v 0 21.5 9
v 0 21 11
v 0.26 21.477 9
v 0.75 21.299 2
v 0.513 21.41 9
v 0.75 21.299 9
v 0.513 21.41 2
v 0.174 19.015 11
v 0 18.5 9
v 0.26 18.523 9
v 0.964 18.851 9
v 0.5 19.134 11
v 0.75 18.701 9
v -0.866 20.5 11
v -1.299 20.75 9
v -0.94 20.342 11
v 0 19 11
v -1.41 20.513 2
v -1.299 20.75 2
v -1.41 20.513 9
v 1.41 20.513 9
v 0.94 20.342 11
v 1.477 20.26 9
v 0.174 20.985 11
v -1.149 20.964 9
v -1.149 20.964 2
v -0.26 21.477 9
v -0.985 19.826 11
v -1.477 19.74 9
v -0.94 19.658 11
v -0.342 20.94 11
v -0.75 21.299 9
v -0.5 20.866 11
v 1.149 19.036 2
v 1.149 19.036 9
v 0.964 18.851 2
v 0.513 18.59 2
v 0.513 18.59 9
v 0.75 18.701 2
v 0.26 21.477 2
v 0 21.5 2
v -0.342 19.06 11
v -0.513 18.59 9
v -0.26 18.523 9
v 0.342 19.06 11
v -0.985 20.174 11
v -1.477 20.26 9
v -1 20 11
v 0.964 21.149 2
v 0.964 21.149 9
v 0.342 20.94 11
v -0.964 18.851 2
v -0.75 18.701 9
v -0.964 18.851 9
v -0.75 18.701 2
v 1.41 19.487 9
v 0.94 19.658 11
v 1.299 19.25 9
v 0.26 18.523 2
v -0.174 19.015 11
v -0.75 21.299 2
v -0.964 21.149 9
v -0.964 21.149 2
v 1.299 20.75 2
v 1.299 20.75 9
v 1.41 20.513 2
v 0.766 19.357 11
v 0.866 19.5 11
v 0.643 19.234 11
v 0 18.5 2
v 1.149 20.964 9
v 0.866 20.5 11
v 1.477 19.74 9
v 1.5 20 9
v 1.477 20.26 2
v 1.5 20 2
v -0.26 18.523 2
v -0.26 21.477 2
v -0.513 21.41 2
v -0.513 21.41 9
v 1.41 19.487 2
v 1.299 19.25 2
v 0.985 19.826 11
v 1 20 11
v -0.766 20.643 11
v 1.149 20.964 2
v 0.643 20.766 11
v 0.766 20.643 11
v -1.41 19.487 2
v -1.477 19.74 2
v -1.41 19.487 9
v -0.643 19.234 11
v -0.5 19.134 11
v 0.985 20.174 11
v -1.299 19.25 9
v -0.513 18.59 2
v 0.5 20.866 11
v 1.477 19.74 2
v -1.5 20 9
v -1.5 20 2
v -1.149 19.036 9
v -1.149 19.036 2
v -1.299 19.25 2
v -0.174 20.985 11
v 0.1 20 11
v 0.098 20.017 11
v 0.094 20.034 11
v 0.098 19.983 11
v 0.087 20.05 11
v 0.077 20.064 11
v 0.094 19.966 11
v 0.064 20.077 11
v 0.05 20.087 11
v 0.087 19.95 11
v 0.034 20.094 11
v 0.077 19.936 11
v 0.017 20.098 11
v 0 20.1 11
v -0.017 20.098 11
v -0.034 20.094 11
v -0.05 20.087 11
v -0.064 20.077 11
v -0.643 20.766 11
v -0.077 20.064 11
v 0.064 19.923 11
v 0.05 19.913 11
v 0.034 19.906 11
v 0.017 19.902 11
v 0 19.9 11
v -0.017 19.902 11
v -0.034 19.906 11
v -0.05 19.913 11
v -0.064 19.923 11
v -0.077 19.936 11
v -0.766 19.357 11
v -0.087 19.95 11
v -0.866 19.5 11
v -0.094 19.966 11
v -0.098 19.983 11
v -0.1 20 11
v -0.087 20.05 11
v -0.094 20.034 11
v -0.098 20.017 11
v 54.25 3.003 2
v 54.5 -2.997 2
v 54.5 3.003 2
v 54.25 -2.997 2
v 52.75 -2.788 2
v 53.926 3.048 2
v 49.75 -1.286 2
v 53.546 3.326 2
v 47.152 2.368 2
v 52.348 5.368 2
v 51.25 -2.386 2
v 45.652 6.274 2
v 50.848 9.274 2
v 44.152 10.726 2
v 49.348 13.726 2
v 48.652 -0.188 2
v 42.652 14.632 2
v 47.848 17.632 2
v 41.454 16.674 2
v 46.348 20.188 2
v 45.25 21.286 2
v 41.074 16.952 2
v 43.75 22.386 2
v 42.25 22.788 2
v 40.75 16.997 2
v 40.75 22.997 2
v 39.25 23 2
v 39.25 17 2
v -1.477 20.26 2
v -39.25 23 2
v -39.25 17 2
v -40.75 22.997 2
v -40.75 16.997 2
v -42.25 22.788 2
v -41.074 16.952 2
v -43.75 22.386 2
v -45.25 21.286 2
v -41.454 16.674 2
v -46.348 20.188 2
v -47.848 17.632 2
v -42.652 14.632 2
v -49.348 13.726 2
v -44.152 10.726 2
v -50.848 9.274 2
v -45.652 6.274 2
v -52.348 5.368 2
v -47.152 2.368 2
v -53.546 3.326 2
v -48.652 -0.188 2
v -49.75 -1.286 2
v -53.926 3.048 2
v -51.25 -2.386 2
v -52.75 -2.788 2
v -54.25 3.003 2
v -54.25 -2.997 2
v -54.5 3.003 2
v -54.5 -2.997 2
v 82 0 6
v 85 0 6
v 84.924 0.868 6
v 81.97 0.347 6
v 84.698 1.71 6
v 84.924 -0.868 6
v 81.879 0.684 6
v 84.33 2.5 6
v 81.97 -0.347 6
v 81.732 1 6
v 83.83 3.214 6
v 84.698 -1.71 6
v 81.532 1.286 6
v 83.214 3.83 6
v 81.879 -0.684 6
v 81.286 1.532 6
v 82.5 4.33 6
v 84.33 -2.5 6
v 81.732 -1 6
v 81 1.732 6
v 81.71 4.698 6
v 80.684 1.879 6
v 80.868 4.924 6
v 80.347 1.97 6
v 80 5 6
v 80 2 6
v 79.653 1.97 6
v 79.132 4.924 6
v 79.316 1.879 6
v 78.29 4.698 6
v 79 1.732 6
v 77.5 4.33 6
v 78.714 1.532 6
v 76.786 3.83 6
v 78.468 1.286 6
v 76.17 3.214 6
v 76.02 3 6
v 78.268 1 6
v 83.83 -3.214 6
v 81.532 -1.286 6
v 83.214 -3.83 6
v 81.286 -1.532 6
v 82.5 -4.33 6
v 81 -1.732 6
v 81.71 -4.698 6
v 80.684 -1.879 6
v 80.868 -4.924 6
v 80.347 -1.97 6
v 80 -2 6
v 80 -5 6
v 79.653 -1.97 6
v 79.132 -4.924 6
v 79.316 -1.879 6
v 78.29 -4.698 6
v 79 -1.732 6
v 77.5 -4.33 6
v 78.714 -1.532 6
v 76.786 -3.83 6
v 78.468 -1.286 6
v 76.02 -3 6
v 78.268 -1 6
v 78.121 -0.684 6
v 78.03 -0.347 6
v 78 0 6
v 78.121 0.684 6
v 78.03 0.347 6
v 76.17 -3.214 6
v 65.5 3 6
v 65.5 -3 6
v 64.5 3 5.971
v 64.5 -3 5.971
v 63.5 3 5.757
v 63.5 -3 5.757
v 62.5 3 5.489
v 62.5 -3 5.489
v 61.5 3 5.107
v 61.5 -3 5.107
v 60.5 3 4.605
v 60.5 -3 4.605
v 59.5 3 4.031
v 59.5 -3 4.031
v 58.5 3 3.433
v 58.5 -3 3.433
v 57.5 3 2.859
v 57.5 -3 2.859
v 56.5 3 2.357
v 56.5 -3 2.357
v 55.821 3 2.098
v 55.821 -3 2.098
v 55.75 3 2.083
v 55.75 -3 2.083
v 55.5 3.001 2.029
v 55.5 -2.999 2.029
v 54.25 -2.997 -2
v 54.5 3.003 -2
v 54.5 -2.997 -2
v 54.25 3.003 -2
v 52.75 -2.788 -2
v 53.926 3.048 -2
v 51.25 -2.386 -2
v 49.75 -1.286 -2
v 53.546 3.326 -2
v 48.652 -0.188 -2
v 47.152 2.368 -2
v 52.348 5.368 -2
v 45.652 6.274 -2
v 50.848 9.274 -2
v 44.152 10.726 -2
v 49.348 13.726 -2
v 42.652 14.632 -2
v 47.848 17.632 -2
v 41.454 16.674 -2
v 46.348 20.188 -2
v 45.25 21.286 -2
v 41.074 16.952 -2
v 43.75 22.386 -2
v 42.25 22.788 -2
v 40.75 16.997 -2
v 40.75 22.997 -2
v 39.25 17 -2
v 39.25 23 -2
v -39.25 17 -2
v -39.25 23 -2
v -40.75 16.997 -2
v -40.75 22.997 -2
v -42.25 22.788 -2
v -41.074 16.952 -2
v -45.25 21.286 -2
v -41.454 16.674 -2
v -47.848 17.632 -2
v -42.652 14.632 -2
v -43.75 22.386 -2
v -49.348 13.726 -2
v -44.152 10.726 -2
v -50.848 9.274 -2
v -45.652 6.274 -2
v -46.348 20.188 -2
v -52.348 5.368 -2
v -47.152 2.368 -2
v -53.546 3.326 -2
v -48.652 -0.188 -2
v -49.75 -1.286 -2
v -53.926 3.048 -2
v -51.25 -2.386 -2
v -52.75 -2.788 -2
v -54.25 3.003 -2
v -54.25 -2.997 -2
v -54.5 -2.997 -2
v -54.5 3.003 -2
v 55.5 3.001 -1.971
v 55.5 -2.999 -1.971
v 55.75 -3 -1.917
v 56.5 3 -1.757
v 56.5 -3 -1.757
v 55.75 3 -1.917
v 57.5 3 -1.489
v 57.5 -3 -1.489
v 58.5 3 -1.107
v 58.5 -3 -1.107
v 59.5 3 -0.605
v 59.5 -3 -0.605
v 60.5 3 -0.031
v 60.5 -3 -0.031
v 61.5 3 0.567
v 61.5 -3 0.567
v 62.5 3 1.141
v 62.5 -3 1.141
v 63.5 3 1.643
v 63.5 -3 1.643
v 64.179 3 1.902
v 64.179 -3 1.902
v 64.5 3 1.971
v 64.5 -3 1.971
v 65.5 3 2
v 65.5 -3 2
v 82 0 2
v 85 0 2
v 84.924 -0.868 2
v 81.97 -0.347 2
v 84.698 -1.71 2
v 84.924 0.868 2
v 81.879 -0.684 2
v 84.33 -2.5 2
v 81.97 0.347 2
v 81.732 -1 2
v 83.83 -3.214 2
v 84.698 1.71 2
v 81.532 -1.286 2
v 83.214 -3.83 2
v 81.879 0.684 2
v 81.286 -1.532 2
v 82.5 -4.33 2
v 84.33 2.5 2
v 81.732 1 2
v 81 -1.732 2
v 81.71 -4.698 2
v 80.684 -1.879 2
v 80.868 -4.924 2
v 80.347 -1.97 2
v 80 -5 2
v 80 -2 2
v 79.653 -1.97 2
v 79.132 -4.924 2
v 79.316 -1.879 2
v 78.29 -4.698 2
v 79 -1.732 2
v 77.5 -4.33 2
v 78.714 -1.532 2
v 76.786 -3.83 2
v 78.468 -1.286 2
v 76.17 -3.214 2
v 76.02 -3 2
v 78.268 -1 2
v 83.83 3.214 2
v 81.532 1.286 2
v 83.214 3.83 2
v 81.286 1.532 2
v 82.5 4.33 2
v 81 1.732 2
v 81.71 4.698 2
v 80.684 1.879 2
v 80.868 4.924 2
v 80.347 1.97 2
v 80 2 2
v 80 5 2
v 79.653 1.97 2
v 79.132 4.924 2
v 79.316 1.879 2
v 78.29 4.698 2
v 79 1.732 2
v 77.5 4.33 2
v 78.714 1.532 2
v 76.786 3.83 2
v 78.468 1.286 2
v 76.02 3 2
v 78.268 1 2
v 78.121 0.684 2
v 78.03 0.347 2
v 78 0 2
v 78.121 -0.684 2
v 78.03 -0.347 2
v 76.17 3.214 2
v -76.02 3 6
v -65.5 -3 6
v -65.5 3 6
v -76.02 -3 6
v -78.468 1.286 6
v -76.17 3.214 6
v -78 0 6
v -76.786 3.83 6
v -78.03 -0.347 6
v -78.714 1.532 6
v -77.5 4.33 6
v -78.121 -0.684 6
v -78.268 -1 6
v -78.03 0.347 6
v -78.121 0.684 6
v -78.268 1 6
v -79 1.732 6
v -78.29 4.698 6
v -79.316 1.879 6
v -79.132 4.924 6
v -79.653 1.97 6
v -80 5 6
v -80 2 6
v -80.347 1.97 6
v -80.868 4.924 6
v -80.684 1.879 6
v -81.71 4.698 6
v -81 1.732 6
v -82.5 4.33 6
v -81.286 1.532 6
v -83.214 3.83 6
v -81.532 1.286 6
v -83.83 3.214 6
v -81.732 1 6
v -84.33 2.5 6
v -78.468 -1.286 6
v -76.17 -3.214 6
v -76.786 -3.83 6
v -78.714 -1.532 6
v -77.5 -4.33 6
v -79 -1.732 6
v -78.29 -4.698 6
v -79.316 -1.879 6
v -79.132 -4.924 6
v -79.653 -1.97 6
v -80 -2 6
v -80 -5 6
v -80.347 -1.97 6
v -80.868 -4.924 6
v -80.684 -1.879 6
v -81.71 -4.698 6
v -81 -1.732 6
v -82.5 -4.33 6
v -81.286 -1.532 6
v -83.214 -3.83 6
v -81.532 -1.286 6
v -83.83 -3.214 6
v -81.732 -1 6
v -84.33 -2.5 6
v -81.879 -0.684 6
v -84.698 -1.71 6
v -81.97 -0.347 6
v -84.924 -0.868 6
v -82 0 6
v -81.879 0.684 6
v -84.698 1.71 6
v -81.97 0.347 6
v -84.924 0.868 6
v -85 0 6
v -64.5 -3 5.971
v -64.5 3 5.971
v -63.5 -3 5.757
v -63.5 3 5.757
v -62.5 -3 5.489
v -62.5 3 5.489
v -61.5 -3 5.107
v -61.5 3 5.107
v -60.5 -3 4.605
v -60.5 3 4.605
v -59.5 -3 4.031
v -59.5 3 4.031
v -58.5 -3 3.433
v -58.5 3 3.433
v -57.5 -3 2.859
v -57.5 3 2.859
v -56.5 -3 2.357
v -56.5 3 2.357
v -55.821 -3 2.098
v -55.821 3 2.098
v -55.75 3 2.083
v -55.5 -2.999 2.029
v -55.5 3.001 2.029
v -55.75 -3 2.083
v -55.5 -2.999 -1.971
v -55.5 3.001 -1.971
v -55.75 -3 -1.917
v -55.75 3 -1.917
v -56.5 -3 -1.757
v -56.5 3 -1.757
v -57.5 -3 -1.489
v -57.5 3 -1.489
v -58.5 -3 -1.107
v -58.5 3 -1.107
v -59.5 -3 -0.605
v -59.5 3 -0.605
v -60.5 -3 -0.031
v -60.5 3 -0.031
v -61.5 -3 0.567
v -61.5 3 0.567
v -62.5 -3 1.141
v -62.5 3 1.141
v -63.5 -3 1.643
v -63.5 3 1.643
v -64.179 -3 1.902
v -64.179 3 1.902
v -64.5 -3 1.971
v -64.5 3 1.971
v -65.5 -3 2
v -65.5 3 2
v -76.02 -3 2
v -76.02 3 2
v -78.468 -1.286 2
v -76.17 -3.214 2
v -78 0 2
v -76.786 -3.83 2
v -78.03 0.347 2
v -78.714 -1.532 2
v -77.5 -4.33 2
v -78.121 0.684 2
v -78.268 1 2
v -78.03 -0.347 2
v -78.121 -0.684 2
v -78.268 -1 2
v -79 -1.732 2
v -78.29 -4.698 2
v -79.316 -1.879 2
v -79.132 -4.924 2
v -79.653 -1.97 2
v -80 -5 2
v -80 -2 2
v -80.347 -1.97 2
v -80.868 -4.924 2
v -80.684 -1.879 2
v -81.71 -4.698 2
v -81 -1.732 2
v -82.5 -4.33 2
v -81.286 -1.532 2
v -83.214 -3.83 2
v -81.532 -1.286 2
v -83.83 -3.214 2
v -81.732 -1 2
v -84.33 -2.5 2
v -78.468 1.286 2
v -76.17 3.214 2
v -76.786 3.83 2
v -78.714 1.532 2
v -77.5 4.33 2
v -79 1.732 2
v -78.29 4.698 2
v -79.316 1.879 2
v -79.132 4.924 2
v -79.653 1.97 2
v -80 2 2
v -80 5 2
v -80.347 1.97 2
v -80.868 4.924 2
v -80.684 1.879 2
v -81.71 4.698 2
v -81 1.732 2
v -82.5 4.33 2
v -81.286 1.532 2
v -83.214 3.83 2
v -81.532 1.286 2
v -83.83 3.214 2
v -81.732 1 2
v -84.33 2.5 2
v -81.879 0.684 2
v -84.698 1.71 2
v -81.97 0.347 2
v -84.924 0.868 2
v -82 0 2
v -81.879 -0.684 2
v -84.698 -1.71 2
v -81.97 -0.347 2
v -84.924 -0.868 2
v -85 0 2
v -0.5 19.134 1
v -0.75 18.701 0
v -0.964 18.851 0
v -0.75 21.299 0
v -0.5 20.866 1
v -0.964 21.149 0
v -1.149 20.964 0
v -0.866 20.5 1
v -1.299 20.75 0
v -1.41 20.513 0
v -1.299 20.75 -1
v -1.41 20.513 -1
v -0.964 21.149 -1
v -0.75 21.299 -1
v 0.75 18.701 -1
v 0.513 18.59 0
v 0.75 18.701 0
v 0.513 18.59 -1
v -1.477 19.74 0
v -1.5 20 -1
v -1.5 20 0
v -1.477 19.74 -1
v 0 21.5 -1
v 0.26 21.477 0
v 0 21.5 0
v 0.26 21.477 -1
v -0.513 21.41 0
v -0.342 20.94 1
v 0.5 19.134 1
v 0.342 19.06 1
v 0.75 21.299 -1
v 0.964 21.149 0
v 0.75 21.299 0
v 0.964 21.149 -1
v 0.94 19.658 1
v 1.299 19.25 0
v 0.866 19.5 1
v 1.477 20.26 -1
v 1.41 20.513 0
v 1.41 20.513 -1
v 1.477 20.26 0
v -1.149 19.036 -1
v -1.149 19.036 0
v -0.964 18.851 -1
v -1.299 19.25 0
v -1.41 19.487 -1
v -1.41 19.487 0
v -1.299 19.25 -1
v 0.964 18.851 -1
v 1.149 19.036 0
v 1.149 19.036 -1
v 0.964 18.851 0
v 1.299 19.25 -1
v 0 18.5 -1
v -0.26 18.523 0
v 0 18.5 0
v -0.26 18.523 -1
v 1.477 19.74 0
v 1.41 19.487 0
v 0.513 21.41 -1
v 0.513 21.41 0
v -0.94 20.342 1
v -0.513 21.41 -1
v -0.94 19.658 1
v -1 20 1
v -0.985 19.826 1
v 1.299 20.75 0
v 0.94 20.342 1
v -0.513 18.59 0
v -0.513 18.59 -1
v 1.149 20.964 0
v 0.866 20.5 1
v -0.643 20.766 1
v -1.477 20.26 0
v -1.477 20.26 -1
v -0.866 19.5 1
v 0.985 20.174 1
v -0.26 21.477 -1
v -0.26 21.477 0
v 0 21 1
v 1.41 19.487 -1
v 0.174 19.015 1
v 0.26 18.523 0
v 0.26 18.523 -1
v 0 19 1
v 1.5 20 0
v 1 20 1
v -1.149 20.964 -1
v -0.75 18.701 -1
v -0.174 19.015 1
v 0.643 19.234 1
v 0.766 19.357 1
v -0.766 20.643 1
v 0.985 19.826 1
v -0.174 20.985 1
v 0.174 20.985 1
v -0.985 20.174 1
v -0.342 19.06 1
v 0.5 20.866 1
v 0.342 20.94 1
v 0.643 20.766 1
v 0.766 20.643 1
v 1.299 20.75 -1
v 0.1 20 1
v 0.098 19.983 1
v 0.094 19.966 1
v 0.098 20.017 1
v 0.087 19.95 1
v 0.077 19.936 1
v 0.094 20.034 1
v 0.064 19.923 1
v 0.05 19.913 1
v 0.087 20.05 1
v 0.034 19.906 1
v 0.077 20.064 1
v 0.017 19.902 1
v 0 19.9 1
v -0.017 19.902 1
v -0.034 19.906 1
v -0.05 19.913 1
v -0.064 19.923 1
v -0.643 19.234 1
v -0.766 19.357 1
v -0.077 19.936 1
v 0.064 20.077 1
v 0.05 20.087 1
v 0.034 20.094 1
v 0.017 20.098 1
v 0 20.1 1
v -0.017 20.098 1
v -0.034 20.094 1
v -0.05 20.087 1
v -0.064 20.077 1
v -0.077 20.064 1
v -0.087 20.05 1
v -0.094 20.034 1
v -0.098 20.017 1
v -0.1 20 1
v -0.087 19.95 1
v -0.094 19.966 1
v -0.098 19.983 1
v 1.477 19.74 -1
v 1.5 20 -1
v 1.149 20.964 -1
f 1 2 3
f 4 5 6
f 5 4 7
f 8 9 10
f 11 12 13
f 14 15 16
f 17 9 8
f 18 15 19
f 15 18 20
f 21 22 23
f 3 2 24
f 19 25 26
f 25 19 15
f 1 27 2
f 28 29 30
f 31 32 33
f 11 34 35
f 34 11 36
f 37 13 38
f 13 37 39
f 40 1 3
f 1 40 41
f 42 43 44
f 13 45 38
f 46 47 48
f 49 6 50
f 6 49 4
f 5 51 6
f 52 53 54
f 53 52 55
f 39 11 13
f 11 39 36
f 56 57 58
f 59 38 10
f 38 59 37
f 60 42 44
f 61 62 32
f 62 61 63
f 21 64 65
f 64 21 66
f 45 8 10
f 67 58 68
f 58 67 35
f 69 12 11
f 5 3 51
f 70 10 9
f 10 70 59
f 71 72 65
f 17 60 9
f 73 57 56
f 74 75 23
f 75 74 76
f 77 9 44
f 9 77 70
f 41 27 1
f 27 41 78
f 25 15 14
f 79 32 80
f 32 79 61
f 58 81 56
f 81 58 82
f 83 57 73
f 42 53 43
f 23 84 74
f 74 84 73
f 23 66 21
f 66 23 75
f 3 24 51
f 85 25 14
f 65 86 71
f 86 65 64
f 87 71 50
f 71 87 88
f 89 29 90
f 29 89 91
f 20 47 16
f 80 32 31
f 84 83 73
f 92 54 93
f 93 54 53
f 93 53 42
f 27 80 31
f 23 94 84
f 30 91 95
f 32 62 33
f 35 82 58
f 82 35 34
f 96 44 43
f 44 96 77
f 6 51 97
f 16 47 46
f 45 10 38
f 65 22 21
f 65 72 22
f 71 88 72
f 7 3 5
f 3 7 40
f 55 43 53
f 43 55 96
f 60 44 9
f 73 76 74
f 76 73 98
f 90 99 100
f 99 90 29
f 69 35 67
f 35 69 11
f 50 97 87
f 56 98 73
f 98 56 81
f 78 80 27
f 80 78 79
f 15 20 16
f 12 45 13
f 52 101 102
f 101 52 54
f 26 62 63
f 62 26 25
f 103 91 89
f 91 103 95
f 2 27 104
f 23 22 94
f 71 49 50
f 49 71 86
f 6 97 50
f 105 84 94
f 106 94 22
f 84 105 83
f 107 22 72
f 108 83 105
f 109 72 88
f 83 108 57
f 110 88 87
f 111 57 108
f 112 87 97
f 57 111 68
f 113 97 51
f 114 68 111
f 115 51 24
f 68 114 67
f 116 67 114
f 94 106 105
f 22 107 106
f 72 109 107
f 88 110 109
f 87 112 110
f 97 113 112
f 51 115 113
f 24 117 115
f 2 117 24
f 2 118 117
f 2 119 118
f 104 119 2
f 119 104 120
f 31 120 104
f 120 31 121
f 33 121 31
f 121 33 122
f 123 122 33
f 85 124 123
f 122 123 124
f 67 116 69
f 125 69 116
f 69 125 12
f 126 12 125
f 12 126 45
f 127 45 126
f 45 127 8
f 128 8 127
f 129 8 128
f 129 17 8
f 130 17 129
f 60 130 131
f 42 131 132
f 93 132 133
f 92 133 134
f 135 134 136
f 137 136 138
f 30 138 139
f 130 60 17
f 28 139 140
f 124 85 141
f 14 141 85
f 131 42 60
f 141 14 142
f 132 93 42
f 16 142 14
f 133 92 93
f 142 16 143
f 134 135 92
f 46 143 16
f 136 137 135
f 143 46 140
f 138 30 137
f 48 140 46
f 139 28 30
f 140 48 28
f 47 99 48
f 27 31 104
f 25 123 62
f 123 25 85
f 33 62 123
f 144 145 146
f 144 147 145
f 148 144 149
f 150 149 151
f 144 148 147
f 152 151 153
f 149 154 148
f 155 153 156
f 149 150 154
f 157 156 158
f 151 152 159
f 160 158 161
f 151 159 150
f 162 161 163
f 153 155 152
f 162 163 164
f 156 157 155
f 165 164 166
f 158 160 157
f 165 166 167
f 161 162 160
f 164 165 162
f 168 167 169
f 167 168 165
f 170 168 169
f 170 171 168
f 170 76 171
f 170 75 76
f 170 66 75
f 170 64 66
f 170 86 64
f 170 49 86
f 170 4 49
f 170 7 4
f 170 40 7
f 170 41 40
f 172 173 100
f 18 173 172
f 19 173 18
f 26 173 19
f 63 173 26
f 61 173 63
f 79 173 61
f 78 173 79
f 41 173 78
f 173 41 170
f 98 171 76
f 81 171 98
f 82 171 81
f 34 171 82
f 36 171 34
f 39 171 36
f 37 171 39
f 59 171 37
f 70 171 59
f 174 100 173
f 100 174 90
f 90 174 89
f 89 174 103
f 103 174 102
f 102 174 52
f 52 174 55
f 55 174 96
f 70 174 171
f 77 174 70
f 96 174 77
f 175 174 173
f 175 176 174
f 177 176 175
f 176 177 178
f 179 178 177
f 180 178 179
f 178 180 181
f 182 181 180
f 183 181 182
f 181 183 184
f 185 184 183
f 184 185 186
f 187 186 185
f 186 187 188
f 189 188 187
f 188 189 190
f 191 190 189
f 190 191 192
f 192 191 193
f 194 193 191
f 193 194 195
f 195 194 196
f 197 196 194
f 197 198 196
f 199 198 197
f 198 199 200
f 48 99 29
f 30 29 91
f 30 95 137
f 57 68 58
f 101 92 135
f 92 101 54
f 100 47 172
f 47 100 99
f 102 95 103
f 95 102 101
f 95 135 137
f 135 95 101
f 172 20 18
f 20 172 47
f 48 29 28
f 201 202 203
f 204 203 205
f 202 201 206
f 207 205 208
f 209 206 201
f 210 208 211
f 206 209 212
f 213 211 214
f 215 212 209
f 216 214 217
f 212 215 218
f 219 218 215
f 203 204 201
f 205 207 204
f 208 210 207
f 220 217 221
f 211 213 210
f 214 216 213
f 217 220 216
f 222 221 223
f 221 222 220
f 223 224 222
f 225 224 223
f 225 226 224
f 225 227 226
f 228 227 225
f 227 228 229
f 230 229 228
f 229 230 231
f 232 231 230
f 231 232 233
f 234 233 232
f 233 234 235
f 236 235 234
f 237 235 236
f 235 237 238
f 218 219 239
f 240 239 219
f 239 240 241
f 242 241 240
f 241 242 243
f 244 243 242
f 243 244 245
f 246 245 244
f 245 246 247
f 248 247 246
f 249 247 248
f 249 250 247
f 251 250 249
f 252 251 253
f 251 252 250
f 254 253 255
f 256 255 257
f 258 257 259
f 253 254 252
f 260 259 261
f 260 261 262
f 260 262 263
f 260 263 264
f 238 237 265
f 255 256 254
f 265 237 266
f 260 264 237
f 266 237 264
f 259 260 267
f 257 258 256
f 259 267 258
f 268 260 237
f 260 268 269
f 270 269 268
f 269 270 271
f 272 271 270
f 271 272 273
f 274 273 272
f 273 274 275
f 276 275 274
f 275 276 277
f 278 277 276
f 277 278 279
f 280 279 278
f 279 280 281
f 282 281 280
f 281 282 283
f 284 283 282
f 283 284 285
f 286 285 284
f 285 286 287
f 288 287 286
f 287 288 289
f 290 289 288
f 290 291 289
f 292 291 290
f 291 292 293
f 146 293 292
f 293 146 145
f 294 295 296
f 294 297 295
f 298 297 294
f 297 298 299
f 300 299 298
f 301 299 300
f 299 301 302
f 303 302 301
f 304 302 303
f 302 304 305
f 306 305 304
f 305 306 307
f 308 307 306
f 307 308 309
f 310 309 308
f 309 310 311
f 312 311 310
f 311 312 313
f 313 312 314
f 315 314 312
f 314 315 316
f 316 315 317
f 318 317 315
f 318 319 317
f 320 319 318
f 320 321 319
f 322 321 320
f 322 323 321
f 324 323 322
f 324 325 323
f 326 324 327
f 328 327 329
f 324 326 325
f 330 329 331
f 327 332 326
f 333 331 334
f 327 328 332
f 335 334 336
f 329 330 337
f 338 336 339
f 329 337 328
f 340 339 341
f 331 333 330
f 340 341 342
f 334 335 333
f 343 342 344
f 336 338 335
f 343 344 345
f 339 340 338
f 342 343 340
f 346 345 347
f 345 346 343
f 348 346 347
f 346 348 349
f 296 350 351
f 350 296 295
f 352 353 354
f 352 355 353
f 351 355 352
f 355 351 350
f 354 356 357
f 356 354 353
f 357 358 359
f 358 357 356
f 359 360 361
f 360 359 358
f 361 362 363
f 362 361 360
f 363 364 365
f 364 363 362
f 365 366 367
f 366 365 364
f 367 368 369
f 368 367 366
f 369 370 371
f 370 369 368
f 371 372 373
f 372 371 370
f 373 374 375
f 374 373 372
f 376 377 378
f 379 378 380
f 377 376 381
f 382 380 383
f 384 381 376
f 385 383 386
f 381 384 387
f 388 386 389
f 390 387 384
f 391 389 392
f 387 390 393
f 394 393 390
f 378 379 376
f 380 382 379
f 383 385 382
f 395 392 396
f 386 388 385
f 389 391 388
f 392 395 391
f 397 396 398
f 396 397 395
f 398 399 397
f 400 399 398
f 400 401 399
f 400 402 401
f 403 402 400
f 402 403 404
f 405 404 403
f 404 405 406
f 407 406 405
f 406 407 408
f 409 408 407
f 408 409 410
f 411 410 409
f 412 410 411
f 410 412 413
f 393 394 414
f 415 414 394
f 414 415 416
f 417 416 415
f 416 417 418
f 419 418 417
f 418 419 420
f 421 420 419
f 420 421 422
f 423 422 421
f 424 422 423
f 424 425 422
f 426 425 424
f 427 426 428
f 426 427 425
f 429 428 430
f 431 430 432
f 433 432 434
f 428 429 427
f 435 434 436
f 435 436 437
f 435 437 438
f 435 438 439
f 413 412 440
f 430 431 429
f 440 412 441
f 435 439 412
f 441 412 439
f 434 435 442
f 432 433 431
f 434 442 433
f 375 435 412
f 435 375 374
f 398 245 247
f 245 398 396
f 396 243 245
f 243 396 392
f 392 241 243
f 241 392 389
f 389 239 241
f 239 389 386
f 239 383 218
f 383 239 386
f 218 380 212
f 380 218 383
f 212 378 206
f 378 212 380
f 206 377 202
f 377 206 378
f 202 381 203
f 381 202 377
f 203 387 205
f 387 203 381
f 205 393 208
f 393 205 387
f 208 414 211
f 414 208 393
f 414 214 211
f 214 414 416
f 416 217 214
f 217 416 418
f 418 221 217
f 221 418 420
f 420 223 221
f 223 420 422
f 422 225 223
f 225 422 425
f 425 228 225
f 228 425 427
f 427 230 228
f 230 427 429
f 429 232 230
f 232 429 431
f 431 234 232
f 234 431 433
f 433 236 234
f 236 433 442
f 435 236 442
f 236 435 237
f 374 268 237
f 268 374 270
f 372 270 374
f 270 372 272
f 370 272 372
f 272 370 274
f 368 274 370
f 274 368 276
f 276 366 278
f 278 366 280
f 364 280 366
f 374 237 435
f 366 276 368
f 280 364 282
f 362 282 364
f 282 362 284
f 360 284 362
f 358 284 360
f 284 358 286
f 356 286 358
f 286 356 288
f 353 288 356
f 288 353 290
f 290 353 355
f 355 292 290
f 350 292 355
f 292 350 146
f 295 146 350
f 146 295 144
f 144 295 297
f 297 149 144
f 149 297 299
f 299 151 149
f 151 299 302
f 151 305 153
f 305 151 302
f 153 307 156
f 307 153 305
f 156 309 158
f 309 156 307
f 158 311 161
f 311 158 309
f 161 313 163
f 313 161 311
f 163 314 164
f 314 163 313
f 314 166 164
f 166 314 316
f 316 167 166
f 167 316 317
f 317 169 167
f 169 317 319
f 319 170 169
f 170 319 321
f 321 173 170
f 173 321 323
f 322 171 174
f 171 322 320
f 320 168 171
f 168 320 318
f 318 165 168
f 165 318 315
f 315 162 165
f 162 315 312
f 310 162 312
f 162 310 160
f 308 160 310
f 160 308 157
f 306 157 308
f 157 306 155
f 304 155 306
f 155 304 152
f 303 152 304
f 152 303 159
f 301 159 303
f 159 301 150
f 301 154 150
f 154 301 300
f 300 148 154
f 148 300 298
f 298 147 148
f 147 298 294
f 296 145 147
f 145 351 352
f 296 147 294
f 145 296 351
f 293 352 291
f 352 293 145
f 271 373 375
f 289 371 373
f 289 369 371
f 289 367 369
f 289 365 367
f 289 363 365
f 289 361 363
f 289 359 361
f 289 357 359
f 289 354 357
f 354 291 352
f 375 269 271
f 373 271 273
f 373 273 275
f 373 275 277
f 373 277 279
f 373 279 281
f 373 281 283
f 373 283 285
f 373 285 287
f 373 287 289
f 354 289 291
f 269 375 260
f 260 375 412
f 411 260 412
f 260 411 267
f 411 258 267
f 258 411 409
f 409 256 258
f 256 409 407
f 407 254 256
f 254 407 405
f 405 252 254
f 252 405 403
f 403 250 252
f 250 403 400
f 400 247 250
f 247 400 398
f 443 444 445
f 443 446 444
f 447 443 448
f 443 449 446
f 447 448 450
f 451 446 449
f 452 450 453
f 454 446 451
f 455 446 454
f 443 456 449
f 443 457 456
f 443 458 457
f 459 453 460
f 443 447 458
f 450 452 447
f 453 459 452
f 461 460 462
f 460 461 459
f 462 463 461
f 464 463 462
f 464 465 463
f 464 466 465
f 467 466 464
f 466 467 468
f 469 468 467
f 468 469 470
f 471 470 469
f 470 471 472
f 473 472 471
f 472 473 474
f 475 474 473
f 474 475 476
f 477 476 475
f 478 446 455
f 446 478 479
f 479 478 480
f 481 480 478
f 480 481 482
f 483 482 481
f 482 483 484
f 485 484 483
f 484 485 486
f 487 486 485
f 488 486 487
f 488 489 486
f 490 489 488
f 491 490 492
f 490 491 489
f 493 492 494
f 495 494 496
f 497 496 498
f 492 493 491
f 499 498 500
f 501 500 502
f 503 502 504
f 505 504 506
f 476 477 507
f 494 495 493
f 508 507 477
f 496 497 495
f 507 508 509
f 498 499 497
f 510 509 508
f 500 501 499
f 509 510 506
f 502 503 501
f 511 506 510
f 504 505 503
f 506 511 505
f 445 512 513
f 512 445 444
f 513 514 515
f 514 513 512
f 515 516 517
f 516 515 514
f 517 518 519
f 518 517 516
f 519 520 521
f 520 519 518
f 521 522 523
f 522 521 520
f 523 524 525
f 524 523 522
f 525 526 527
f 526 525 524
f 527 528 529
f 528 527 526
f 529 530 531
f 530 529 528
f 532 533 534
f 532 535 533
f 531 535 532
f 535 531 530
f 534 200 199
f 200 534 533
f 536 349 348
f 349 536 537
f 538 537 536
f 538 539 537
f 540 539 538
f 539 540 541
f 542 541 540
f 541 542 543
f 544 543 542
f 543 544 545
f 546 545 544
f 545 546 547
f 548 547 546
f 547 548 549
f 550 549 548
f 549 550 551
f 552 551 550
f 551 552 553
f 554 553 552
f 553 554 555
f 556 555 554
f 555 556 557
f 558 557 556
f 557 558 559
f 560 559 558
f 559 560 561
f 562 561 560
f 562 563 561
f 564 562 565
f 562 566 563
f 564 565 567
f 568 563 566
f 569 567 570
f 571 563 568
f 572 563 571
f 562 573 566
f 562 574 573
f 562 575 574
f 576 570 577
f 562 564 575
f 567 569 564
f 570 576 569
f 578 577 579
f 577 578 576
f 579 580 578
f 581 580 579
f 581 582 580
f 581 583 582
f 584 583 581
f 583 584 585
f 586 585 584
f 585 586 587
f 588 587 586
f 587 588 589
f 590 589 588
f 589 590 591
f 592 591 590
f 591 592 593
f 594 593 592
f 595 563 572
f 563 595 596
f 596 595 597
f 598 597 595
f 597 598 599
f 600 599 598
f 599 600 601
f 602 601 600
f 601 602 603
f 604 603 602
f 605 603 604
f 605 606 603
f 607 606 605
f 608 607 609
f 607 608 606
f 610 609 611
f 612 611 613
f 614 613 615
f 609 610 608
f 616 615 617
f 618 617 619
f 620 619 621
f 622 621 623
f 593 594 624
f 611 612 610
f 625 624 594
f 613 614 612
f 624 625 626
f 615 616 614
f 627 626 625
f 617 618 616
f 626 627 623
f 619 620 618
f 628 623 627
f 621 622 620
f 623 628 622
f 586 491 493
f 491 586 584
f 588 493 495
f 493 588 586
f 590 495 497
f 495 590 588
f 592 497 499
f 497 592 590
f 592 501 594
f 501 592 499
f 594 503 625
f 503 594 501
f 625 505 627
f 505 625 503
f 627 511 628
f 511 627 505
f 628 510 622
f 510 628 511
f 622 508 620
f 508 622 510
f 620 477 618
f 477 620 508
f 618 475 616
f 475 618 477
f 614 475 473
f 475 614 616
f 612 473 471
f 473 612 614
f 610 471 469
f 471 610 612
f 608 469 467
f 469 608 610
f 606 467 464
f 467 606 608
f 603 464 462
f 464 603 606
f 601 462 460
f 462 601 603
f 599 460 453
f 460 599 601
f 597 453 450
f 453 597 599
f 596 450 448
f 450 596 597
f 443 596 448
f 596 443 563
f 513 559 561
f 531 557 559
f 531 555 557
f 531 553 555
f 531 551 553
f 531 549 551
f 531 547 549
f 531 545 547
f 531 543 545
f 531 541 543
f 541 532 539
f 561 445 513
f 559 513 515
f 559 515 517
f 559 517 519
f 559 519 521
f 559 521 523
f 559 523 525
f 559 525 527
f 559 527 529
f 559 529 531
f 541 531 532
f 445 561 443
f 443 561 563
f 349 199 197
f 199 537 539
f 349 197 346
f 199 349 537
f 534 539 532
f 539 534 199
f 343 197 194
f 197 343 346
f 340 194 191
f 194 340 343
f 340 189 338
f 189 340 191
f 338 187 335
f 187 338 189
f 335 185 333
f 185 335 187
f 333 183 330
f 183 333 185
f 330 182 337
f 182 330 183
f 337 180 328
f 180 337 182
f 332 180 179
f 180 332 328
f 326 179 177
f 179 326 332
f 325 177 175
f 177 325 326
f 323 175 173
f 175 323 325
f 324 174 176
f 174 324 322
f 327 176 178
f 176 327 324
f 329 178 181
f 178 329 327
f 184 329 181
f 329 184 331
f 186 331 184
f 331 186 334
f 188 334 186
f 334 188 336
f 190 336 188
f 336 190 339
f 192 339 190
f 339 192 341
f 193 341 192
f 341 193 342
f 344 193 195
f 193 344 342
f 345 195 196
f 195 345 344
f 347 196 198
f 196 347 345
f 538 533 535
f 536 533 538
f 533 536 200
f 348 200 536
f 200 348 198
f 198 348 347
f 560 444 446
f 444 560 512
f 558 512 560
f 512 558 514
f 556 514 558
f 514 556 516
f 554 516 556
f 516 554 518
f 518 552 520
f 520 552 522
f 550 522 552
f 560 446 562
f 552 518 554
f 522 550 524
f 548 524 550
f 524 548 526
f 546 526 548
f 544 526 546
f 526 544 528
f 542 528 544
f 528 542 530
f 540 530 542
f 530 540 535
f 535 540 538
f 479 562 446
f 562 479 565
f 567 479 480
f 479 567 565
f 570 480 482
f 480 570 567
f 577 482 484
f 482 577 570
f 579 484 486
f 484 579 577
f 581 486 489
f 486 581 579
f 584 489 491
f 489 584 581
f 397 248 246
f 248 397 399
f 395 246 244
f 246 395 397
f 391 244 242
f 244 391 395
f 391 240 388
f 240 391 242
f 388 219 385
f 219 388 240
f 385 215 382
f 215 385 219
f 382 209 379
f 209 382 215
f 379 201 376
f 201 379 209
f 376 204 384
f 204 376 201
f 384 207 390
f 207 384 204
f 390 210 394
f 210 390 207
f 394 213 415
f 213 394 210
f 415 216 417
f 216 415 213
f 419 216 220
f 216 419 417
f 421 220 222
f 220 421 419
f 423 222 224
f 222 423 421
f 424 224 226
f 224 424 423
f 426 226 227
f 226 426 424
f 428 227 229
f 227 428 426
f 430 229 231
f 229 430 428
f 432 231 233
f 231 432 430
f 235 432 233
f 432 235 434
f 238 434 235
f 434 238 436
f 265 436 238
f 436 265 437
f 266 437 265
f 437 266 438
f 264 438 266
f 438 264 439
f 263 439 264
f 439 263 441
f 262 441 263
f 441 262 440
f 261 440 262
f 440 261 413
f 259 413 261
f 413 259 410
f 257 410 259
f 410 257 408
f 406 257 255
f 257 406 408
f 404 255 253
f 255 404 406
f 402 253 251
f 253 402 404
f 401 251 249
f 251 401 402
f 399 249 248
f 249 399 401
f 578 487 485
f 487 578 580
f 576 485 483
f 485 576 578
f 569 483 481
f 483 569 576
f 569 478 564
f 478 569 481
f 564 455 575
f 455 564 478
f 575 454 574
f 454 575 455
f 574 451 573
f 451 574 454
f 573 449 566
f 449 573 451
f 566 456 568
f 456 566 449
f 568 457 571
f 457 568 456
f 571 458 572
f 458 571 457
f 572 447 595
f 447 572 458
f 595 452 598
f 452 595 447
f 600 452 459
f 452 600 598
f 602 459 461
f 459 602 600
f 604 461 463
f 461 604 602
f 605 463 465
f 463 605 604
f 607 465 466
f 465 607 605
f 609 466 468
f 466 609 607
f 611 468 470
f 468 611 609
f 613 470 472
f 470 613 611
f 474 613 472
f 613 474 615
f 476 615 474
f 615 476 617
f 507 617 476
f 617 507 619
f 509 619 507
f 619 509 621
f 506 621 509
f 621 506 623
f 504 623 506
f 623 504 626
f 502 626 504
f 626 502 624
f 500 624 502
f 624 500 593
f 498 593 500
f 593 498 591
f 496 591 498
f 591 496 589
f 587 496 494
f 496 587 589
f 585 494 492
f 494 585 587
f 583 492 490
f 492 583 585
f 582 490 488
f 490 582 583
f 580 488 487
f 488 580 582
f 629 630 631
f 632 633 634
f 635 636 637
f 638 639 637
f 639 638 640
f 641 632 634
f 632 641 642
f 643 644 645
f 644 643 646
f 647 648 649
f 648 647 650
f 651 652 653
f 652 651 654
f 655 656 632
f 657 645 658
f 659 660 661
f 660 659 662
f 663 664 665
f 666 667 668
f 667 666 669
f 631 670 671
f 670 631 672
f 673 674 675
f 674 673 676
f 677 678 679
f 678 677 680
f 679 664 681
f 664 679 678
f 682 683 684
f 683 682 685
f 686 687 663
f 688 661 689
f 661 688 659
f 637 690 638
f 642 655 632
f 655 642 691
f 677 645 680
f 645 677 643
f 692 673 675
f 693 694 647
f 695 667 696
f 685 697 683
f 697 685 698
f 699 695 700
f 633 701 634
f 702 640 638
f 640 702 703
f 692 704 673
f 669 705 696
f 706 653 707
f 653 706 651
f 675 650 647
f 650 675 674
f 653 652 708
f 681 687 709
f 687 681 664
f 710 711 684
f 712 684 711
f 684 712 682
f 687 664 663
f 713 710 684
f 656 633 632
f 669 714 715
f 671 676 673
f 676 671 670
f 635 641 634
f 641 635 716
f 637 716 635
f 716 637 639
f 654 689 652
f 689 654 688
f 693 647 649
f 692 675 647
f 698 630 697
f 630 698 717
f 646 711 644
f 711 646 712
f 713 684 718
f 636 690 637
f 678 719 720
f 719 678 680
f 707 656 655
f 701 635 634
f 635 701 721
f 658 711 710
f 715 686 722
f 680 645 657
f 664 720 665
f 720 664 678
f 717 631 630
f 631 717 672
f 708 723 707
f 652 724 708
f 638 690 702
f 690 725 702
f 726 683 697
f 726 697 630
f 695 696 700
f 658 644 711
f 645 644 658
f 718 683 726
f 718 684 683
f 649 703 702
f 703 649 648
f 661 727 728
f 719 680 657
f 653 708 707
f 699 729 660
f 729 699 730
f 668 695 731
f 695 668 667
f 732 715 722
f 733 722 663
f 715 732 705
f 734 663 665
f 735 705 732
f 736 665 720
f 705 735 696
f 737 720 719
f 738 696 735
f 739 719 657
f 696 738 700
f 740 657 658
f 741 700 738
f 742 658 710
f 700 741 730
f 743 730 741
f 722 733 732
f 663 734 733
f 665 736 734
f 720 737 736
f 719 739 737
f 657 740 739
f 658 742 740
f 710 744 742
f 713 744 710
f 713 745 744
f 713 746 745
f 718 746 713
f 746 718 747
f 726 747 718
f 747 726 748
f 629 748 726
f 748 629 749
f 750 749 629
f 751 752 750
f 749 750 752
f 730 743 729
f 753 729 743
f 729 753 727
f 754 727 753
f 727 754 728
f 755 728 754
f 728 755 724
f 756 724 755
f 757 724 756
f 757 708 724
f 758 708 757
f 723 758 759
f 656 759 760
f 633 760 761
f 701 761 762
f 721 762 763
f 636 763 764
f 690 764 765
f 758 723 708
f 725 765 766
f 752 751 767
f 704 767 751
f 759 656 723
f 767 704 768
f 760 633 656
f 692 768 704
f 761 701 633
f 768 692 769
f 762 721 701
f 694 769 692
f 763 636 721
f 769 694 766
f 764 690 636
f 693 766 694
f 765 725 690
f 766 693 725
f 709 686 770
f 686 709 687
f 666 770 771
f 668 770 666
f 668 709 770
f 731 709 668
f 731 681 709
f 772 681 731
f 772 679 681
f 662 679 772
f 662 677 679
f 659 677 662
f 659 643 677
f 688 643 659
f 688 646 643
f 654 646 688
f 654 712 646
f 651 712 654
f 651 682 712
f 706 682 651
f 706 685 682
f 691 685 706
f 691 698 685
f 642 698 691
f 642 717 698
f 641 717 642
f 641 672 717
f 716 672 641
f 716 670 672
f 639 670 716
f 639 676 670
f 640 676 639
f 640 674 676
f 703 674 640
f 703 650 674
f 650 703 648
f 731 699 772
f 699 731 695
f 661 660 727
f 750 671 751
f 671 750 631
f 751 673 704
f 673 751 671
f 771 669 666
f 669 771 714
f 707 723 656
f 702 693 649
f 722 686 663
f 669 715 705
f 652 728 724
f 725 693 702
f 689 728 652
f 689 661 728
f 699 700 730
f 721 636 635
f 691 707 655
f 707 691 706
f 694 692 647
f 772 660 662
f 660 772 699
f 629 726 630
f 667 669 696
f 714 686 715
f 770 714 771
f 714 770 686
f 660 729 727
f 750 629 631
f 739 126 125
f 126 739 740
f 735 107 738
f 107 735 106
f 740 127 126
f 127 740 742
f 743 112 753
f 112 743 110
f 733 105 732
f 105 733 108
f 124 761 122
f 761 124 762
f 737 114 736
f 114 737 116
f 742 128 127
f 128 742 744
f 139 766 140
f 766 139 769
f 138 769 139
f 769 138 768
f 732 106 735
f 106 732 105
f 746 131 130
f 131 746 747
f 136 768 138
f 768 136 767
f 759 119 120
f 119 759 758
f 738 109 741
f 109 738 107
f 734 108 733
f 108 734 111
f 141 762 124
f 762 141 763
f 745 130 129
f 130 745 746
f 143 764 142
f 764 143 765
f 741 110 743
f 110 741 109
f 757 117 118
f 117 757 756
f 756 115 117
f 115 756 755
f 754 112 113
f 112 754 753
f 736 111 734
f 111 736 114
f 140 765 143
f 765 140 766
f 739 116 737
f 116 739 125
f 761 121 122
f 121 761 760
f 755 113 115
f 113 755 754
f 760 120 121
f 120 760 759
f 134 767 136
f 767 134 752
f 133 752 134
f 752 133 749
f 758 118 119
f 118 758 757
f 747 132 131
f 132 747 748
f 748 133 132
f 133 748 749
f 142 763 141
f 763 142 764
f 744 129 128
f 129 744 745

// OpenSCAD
$fn=36;
w=170;
epsilon=0.00001;


 r=.0;

//union(){




difference(){
union(){union(){
hull(){
translate([0,20,2])cylinder(7,1.5,1.5);
translate([0,20,2])cylinder(9,1 ,1 );
}translate([-0,20,-1])cylinder(25,.051 ,.051 );}


  mirrorcopy([1,0])

intersection()
{
    
    
    
    step=1/10;
 rotate([90,0,0])  linear_extrude(50-r,center=true){ for(i=[-2.15:step:6.75-step]){
    ii=i+step;
    hull(){
        translate([65-i*10, ( smooth(1-i))*4,0])circle(2,$fn=12);
        translate([65-ii*10, ( smooth(1-ii))*4,0])circle(2,$fn=12);
    }
}}
    
    
    
    

//    minkowski()
    {
//    sphere(r,$fn=12);

linear_extrude(54-r,center=true){ offset(-r)
//    offset(-4)offset(4)
    union(){
    
    translate([w/2-5,0,0])circle(5);




step=1/10;
 translate([w/2-10,0]) square([6,6],true);
for(i=[-1.15:step:4-step]){
    ii=i+step;
    hull(){
        translate([55-i*15,smooth(smooth(i))*20,0])circle(3,$fn=12);
        translate([55-ii*15,smooth(smooth(ii))*20,0])circle(3,$fn=12);
    }
}
 }
 }
 }

}
 }
 
 linear_extrude(30,center=true)mirrorcopy([1,0])  {
translate([170/2-5,0,0])circle(2,$fn=36);

}
hull(){
translate([-0,20,-1])cylinder(1,1.5,1.5);
translate([-0,20,-1])cylinder(2,1 ,1 );
}
translate([-0,20,-1])cylinder(25,.1 ,.1 );

 }

module mirrorcopy(m)
{
    children();
    mirror(m)
    children();
    
    }

function un(v) = v / max(norm(v), 1e-64) * 1;
function clamp(a,b=0,c=1) =  min(max(a,min(b,c)),max(b,c));
function lerp(start,end,bias) = (end * bias + start * (1 - bias));
function rnd(a = 1, b = 0) = (rands(min(a, b), max(a, b), 1)[0]);
function smooth(a) = let (b = clamp(a))(b * b * (3 - 2 * b));
function gauss(x) = x + (x - smooth(x));
    
    
    
    module bevel_extrude(h ,r ,detail=4)
{
   difference(){
   linear_extrude(h,convexity=6)children();
    
     l=concat([[0,0]   ,[0,h-r]       ],
     [for(i=[90:-90/detail:0]) [r,h-r]+[-sin(i)*r,cos(i)*r]]
    ,[[r,h+r+.1]],[[0,h+r+.1]]
    );
 echo(l);
     union()  for(i=[0:max(0,len(l)-2)]){
        p1=l[i]+[epsilon,0];
        p2=l[i+1]+[epsilon,epsilon] ;
        p3=[ epsilon,l[i+1].y+0.0001];
        p4=[ epsilon,l[i].y];
        echo(p1,p2,p3,p4);
     minkowski(){
     color(rands(0,1,3))hull()rotate_extrude($fn=12,convexity=6)polygon([p1,p2,p3,p4]);
     color("red")mirror([0,0,1]) linear_extrude(epsilon)  union() negative2d () children();
    }
 }
    
    }}
module negative2d (){
    difference(){
    
        offset(delta=30,$fn=1)hull()children();    
        children();
    }
    }
